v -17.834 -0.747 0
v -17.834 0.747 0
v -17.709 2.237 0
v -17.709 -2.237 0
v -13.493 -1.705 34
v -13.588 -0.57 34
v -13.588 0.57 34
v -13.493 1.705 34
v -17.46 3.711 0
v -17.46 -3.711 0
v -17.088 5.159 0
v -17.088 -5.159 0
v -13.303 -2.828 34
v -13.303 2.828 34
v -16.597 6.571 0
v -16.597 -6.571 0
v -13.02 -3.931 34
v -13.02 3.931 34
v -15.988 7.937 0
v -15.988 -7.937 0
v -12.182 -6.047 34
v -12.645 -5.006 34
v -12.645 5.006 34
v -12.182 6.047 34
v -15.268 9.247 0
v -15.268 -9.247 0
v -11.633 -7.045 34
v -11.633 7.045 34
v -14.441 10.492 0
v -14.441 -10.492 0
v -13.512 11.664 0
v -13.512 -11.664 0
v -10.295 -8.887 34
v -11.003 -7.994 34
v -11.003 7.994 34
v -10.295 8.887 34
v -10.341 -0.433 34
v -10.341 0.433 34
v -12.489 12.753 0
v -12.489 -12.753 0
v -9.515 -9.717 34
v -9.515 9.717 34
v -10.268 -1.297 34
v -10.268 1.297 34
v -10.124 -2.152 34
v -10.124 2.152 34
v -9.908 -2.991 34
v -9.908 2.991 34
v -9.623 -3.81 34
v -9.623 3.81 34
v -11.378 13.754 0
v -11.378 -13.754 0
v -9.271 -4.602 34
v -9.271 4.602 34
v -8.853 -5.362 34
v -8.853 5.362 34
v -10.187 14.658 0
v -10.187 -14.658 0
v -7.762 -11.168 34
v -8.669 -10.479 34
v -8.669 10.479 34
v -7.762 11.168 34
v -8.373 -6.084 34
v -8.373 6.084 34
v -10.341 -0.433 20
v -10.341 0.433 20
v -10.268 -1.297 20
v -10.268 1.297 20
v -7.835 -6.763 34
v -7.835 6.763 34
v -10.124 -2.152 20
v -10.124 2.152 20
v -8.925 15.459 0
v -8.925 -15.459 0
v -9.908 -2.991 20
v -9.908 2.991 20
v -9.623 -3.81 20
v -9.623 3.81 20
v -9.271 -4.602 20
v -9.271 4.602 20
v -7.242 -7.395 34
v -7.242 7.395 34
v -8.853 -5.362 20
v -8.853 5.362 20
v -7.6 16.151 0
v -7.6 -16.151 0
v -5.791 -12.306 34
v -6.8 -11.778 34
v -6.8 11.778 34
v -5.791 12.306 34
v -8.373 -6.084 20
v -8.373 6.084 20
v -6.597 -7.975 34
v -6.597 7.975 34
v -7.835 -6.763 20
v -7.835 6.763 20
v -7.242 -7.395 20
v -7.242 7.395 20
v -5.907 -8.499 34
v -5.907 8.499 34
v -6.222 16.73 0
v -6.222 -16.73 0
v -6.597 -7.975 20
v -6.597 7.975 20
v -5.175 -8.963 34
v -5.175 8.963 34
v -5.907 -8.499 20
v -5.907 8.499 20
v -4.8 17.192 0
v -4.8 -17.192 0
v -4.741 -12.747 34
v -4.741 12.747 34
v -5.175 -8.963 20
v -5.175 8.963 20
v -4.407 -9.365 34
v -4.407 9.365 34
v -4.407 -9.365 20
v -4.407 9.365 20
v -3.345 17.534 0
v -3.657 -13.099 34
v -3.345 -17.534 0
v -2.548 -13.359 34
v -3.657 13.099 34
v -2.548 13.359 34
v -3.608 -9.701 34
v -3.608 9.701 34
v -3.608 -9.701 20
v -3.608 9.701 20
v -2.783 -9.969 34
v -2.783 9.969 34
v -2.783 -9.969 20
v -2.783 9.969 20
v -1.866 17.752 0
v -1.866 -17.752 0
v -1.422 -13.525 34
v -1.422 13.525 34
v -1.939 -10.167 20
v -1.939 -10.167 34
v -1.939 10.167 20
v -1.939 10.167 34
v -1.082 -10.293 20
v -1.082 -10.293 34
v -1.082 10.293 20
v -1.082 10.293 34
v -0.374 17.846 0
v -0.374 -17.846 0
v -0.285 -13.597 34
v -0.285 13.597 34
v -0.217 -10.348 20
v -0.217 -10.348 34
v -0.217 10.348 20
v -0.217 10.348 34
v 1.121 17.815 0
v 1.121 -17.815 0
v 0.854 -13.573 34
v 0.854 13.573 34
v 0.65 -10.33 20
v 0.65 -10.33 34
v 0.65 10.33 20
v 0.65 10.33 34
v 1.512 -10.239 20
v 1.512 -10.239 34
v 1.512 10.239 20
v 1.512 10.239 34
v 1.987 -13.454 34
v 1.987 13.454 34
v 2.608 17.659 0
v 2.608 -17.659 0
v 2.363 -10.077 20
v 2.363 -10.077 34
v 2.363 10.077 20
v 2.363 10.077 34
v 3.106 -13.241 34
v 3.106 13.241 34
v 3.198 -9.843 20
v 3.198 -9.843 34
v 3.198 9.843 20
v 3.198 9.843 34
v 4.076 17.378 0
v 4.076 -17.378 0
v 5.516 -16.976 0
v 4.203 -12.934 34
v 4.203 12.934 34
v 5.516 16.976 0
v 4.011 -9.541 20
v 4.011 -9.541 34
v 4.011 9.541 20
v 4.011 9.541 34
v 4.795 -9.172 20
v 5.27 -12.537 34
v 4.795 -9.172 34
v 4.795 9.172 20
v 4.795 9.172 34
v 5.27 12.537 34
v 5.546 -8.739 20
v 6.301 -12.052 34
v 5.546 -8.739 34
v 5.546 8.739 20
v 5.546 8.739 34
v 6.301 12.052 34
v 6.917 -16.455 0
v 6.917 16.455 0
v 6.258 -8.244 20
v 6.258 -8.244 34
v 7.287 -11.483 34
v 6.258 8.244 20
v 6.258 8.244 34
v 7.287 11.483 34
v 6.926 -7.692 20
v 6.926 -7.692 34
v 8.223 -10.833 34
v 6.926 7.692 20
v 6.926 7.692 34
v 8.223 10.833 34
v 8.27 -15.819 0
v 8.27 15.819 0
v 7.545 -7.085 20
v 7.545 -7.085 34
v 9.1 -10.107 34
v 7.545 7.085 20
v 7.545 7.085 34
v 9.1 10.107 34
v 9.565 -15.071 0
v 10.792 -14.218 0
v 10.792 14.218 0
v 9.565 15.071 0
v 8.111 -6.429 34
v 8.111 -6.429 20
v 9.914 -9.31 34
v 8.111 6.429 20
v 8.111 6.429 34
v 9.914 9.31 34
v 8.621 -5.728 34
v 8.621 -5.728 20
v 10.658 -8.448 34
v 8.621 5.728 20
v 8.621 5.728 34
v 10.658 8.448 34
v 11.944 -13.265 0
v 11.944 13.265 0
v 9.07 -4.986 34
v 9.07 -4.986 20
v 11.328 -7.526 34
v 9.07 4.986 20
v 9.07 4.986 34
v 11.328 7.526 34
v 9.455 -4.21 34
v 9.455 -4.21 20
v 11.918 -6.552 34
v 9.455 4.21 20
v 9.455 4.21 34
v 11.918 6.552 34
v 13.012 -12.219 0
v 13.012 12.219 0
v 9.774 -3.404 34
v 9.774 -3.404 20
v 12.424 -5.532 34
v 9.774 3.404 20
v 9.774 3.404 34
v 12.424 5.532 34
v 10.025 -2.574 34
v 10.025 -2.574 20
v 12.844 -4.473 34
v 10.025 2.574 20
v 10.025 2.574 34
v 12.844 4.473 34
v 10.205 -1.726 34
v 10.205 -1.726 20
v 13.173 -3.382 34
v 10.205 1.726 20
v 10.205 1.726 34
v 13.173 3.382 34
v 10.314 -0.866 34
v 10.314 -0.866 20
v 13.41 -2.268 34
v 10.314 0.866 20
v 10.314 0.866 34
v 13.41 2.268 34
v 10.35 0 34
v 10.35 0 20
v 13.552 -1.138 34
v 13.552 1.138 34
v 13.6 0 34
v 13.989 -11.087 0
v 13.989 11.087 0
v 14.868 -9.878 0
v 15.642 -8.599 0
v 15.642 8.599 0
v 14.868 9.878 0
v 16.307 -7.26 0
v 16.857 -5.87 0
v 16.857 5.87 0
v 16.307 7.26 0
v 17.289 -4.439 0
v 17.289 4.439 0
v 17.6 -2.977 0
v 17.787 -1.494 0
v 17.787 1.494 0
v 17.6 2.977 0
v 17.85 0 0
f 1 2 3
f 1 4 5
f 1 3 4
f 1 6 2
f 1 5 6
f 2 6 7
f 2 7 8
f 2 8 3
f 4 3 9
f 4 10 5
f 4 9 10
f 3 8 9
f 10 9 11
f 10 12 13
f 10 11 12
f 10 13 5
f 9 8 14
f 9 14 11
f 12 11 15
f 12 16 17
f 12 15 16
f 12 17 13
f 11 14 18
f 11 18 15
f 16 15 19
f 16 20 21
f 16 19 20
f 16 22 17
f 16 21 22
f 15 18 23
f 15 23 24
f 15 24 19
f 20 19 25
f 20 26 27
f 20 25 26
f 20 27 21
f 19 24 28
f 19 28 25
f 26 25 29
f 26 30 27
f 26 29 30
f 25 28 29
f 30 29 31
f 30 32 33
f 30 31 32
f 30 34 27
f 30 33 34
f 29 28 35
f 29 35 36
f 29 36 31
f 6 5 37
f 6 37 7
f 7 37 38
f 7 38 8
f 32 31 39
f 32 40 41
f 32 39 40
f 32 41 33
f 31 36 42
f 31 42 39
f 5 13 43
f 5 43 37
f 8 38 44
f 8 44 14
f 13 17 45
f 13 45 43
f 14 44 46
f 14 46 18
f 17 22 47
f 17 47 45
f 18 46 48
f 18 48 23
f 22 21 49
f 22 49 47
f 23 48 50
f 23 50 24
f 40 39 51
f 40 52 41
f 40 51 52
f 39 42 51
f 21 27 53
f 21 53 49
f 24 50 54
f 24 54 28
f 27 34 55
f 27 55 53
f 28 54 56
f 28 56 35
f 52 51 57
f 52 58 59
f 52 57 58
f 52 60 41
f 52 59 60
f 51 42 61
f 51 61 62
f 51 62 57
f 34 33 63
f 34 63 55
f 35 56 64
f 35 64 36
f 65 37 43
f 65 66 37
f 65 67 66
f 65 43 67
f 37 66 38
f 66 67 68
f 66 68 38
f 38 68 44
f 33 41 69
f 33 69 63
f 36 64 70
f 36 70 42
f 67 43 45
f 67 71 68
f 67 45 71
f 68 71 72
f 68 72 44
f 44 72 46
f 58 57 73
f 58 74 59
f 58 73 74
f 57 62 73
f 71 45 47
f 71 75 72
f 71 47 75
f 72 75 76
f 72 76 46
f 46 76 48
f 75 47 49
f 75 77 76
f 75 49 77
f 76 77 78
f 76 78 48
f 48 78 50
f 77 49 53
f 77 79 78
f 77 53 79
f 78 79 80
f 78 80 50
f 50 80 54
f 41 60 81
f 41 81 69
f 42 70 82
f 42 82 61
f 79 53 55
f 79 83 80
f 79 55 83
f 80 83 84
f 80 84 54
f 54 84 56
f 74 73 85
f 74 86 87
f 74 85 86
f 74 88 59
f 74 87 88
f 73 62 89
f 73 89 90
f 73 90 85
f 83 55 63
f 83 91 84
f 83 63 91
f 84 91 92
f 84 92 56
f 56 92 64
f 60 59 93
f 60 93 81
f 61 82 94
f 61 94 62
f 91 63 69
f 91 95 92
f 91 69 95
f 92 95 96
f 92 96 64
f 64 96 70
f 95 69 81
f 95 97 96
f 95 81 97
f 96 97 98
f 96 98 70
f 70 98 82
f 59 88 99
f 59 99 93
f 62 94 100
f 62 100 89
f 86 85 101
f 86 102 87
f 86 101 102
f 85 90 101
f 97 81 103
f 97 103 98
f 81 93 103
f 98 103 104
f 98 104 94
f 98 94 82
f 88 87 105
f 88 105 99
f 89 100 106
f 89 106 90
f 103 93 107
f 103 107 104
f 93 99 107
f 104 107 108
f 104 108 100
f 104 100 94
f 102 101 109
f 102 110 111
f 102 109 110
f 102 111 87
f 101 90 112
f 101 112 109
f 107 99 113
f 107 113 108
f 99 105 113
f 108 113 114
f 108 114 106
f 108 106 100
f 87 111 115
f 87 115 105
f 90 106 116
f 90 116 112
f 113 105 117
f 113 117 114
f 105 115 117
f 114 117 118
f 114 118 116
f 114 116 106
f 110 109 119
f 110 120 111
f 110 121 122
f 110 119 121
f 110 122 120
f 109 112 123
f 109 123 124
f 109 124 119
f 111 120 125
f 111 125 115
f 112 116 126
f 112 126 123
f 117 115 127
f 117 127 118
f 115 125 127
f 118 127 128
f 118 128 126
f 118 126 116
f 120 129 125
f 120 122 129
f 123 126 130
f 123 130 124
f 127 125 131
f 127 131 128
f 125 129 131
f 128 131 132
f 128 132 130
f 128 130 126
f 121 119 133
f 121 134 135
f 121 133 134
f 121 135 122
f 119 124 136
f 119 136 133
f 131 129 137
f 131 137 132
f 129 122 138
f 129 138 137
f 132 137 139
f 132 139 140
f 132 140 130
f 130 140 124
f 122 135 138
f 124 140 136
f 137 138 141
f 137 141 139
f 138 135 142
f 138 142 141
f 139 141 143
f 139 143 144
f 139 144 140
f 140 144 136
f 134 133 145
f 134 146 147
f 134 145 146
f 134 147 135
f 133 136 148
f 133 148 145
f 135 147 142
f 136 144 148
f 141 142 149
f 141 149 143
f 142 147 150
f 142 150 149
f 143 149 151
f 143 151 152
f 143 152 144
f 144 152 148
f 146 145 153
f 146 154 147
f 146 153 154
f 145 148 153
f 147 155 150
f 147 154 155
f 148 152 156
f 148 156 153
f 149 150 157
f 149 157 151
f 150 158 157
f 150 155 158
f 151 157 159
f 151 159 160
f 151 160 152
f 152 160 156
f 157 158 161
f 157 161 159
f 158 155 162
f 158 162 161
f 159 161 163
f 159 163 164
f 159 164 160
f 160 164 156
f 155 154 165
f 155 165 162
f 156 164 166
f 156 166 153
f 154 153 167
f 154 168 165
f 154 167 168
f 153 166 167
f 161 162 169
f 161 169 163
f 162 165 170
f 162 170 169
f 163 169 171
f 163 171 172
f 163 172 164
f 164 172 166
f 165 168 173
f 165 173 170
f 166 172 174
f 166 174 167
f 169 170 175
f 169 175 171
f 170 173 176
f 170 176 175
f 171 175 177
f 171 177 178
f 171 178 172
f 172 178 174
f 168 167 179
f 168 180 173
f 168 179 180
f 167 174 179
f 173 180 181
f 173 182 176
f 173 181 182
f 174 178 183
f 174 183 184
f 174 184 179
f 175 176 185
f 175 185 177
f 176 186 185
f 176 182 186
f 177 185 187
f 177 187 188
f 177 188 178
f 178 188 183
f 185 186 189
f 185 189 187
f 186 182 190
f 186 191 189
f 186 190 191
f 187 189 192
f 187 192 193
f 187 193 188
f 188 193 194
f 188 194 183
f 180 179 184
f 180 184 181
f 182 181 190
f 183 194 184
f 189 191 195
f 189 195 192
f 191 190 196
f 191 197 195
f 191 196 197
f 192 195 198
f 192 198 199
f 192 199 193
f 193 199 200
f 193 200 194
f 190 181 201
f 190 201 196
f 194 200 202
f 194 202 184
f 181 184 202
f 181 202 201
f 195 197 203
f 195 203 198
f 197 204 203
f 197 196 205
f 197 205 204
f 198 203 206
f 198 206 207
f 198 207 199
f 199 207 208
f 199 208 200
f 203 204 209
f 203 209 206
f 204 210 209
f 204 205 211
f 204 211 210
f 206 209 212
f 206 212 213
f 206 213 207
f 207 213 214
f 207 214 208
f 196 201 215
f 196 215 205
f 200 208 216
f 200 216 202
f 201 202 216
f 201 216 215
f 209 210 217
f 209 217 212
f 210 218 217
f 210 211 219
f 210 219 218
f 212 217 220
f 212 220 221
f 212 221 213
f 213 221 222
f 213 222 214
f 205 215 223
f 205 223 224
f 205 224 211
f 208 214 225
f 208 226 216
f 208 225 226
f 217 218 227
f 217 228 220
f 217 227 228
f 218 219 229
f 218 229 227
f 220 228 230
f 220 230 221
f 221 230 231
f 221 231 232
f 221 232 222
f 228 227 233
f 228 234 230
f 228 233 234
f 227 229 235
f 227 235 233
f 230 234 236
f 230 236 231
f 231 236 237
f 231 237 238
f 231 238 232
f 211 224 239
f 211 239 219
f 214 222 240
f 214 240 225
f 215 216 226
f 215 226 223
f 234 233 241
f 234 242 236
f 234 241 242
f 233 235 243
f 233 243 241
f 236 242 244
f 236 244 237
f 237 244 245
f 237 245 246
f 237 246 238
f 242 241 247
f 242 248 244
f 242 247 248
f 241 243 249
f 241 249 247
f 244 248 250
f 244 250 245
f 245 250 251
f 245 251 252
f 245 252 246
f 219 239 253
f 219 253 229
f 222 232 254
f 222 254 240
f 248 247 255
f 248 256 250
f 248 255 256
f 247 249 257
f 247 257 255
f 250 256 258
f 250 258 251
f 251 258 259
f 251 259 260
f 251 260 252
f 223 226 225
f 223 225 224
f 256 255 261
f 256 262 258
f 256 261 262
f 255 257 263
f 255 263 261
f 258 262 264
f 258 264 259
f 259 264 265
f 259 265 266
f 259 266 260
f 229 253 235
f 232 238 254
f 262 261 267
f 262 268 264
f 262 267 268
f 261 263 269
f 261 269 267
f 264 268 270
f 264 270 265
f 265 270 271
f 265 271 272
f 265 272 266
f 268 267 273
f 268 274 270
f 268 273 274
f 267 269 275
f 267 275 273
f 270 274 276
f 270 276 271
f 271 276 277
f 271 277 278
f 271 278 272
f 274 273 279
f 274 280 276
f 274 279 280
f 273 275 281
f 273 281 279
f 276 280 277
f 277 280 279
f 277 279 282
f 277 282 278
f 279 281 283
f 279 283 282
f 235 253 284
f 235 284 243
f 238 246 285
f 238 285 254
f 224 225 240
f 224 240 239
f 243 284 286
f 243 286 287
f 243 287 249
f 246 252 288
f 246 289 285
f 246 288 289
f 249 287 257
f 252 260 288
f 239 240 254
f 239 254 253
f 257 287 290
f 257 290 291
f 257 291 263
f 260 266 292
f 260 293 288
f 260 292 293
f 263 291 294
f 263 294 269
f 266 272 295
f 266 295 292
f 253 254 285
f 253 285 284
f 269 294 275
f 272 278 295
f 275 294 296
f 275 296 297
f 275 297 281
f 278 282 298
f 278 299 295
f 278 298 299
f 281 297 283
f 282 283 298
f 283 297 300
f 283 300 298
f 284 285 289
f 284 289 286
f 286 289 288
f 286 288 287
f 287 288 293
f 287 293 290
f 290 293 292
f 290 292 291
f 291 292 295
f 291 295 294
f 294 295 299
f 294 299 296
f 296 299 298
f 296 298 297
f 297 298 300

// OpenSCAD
$fn=75;

// 脚の直径
diameter=20.7;

// 本体の高さ
height=34;

// 空洞の高さ
cavity_height=14;

difference(){

	// 本体
	cylinder(h=height, d1=diameter+15, d2=diameter+6.5);

	// 空洞
	translate([0, 0, height-cavity_height]){

		cylinder(h=cavity_height, d=diameter);

	}

}
